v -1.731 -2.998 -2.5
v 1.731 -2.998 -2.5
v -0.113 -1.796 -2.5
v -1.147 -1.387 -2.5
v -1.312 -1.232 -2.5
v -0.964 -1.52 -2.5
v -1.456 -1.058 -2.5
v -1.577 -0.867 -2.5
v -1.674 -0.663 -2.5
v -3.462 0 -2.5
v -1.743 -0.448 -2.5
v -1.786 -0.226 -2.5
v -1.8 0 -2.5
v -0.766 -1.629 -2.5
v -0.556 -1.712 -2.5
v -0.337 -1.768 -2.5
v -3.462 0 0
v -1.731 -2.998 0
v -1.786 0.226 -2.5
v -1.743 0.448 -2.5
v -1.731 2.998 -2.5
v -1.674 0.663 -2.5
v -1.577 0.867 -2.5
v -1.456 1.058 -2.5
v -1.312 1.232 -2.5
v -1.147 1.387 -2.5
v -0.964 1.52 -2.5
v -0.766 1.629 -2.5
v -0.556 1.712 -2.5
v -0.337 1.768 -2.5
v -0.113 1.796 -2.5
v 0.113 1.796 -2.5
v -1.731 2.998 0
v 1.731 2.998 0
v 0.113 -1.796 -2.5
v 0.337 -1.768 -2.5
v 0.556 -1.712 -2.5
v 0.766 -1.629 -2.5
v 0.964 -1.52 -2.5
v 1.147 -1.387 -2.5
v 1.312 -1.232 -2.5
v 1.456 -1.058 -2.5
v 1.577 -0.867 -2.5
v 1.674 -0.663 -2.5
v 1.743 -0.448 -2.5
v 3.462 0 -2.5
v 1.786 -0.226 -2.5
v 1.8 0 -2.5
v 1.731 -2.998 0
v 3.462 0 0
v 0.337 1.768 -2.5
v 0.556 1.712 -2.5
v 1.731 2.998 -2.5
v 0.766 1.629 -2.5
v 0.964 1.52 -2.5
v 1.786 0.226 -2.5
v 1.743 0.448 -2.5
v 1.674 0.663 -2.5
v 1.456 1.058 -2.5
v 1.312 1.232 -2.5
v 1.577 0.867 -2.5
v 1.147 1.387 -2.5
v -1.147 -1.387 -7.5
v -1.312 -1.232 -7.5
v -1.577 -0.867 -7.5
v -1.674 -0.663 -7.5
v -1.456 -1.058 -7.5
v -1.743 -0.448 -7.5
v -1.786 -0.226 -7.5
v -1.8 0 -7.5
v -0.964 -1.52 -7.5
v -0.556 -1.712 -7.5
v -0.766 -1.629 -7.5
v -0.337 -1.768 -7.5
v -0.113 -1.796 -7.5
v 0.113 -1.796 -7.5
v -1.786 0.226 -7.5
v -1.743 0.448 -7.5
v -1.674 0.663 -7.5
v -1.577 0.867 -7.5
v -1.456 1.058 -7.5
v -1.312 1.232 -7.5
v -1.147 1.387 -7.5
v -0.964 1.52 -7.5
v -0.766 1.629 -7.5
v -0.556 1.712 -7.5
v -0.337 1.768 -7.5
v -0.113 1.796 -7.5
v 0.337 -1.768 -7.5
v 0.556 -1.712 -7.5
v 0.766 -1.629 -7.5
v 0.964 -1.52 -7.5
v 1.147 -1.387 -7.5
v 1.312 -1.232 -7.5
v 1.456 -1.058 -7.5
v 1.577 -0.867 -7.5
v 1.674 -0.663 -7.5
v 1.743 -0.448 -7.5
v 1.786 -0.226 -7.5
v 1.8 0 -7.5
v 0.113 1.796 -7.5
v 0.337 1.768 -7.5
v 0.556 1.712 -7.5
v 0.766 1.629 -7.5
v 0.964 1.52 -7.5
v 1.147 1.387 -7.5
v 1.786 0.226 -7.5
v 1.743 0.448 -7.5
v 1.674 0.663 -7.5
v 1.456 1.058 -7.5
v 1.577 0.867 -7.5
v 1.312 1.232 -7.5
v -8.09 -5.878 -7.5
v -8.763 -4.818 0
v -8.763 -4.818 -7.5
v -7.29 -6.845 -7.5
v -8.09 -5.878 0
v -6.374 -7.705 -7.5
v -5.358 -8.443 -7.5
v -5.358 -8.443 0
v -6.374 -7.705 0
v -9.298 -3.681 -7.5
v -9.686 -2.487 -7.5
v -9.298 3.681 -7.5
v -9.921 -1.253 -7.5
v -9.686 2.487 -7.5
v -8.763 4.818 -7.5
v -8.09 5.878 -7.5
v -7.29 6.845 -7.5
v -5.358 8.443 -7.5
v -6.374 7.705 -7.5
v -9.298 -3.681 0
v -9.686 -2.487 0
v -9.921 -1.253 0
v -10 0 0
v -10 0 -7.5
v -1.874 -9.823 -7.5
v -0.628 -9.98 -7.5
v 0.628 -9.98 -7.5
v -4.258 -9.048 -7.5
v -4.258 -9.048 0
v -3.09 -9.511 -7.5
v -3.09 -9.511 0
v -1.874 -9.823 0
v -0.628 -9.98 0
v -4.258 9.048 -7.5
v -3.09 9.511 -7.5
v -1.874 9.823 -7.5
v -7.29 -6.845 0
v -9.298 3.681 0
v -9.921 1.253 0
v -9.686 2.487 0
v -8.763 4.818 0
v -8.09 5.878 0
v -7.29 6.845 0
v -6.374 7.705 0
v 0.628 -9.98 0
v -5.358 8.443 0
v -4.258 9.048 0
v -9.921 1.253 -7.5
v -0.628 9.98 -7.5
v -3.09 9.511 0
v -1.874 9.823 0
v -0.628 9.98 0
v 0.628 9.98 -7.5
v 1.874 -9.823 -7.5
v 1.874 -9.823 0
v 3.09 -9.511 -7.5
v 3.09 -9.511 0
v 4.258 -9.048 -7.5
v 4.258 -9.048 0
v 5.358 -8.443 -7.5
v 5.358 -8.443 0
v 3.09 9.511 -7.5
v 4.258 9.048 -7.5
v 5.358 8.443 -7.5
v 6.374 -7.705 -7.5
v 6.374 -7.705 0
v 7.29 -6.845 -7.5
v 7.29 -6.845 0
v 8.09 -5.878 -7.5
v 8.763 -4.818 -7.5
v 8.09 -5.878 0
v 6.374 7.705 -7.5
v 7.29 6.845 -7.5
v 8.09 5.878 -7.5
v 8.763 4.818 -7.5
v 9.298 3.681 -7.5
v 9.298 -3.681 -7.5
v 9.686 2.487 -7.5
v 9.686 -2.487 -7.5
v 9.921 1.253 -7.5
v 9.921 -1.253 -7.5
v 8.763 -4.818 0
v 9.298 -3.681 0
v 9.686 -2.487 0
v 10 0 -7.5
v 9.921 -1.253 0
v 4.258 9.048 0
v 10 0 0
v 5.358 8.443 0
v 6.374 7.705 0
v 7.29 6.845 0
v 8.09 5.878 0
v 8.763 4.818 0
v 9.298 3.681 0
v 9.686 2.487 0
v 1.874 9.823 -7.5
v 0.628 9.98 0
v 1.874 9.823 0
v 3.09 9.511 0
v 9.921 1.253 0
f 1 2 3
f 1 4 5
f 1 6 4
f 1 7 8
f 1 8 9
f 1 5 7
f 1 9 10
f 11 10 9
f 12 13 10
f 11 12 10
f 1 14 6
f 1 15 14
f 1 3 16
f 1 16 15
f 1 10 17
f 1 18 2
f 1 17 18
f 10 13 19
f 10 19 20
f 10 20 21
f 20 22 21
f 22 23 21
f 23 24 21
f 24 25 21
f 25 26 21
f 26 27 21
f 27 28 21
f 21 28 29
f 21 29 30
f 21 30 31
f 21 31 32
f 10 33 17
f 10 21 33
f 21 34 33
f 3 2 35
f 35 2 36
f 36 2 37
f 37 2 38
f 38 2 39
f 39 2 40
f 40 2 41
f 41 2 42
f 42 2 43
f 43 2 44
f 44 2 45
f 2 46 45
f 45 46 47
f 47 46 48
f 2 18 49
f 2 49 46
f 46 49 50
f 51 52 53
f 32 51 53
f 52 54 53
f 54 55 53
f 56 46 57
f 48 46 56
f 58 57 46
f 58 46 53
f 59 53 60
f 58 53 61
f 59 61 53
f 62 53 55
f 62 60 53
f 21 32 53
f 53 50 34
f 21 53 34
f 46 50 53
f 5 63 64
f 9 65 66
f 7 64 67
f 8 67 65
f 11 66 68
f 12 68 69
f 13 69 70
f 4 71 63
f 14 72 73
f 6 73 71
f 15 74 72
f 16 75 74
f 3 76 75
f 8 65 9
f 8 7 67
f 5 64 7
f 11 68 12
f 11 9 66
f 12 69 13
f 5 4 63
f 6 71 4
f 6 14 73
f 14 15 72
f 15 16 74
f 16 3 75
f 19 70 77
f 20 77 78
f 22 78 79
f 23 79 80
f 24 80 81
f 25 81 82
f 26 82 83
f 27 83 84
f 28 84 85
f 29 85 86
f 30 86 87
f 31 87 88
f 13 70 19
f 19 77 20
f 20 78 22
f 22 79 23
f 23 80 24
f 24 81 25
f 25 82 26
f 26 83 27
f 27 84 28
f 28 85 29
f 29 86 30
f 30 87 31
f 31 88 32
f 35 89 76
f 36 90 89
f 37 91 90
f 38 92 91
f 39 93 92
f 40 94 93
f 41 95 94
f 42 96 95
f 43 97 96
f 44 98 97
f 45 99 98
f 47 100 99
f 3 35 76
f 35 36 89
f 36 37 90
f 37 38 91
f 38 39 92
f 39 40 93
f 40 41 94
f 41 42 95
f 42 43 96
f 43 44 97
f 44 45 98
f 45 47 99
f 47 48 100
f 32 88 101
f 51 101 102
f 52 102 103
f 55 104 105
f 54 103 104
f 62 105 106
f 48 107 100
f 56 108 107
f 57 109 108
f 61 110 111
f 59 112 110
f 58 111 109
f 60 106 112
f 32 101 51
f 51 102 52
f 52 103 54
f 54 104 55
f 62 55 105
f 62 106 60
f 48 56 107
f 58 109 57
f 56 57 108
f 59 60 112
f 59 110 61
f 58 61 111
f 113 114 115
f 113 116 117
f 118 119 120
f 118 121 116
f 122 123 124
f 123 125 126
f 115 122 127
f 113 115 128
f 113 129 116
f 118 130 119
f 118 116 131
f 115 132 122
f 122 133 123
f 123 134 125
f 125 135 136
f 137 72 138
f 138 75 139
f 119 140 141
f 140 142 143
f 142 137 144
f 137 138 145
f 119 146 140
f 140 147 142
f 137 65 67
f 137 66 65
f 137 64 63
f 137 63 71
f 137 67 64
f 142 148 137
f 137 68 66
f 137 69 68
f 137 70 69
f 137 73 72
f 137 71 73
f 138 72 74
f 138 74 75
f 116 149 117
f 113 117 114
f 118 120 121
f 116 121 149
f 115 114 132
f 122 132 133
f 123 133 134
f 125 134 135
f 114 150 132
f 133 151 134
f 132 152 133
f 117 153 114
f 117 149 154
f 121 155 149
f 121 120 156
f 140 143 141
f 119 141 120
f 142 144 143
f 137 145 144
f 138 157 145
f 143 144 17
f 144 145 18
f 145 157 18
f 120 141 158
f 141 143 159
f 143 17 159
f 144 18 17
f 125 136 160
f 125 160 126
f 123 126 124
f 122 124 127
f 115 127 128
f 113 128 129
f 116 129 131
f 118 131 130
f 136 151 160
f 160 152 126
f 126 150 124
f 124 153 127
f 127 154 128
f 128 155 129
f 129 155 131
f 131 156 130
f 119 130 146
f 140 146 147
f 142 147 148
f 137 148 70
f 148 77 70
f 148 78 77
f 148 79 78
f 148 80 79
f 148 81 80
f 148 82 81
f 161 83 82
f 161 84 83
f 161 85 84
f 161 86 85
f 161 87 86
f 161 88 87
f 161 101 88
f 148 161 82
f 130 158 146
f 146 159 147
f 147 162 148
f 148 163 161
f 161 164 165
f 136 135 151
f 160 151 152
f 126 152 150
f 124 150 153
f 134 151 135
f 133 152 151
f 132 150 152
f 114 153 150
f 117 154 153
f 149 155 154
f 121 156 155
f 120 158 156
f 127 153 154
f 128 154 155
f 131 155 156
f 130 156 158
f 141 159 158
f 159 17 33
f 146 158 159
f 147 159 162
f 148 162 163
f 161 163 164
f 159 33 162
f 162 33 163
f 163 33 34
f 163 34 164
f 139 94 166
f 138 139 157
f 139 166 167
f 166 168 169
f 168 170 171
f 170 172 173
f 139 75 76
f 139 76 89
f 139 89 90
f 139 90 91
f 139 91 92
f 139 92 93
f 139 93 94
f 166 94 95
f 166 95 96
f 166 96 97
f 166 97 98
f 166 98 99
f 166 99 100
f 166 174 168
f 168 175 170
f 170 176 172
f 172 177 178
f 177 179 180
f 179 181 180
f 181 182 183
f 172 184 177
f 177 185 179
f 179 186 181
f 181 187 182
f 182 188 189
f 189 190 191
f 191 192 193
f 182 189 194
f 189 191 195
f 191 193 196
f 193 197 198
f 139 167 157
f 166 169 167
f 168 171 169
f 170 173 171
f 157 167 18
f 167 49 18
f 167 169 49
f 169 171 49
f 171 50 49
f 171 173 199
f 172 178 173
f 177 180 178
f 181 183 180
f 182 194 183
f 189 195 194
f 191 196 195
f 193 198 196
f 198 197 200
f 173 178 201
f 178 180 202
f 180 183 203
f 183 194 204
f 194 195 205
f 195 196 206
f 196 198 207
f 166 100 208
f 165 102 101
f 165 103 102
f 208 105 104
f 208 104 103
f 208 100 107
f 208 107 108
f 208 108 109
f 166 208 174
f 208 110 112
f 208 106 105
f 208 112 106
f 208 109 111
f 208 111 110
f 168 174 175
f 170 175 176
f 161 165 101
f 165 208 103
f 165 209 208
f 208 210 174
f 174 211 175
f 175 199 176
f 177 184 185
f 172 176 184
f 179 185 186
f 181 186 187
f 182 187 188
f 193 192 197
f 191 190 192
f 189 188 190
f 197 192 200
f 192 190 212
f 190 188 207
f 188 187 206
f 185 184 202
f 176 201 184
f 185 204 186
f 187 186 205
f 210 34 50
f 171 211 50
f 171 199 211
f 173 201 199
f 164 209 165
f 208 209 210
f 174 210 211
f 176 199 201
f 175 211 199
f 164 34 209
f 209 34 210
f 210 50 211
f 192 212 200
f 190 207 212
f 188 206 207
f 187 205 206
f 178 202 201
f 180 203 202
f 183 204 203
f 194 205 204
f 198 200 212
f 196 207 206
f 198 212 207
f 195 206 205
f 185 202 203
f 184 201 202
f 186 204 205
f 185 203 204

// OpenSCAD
$fn = 50;

difference() {
	union() {
		translate(v = [0, 0, -7.5]) {
			cylinder(h = 7.5, r = 10.0);
		}
	}
	union() {
		translate(v = [0, 0, 0]) {
			rotate(a = [0, 0, 0]) {
				difference() {
					union() {
						translate(v = [0, 0, -2.5]) {
							linear_extrude(height = 2.5) {
								polygon(points = [[3.4619999999999997, 0.0], [1.7310000000000003, 2.9981799479017264], [-1.7309999999999992, 2.9981799479017264], [-3.4619999999999997, 4.2397272186481365e-16], [-1.7310000000000014, -2.998179947901726], [1.7309999999999977, -2.9981799479017277]]);
							}
						}
					}
					union();
				}
			}
		}
		#translate(v = [0, 0, -100.0]) {
			cylinder(h = 200, r = 1.8);
		}
	}
}
